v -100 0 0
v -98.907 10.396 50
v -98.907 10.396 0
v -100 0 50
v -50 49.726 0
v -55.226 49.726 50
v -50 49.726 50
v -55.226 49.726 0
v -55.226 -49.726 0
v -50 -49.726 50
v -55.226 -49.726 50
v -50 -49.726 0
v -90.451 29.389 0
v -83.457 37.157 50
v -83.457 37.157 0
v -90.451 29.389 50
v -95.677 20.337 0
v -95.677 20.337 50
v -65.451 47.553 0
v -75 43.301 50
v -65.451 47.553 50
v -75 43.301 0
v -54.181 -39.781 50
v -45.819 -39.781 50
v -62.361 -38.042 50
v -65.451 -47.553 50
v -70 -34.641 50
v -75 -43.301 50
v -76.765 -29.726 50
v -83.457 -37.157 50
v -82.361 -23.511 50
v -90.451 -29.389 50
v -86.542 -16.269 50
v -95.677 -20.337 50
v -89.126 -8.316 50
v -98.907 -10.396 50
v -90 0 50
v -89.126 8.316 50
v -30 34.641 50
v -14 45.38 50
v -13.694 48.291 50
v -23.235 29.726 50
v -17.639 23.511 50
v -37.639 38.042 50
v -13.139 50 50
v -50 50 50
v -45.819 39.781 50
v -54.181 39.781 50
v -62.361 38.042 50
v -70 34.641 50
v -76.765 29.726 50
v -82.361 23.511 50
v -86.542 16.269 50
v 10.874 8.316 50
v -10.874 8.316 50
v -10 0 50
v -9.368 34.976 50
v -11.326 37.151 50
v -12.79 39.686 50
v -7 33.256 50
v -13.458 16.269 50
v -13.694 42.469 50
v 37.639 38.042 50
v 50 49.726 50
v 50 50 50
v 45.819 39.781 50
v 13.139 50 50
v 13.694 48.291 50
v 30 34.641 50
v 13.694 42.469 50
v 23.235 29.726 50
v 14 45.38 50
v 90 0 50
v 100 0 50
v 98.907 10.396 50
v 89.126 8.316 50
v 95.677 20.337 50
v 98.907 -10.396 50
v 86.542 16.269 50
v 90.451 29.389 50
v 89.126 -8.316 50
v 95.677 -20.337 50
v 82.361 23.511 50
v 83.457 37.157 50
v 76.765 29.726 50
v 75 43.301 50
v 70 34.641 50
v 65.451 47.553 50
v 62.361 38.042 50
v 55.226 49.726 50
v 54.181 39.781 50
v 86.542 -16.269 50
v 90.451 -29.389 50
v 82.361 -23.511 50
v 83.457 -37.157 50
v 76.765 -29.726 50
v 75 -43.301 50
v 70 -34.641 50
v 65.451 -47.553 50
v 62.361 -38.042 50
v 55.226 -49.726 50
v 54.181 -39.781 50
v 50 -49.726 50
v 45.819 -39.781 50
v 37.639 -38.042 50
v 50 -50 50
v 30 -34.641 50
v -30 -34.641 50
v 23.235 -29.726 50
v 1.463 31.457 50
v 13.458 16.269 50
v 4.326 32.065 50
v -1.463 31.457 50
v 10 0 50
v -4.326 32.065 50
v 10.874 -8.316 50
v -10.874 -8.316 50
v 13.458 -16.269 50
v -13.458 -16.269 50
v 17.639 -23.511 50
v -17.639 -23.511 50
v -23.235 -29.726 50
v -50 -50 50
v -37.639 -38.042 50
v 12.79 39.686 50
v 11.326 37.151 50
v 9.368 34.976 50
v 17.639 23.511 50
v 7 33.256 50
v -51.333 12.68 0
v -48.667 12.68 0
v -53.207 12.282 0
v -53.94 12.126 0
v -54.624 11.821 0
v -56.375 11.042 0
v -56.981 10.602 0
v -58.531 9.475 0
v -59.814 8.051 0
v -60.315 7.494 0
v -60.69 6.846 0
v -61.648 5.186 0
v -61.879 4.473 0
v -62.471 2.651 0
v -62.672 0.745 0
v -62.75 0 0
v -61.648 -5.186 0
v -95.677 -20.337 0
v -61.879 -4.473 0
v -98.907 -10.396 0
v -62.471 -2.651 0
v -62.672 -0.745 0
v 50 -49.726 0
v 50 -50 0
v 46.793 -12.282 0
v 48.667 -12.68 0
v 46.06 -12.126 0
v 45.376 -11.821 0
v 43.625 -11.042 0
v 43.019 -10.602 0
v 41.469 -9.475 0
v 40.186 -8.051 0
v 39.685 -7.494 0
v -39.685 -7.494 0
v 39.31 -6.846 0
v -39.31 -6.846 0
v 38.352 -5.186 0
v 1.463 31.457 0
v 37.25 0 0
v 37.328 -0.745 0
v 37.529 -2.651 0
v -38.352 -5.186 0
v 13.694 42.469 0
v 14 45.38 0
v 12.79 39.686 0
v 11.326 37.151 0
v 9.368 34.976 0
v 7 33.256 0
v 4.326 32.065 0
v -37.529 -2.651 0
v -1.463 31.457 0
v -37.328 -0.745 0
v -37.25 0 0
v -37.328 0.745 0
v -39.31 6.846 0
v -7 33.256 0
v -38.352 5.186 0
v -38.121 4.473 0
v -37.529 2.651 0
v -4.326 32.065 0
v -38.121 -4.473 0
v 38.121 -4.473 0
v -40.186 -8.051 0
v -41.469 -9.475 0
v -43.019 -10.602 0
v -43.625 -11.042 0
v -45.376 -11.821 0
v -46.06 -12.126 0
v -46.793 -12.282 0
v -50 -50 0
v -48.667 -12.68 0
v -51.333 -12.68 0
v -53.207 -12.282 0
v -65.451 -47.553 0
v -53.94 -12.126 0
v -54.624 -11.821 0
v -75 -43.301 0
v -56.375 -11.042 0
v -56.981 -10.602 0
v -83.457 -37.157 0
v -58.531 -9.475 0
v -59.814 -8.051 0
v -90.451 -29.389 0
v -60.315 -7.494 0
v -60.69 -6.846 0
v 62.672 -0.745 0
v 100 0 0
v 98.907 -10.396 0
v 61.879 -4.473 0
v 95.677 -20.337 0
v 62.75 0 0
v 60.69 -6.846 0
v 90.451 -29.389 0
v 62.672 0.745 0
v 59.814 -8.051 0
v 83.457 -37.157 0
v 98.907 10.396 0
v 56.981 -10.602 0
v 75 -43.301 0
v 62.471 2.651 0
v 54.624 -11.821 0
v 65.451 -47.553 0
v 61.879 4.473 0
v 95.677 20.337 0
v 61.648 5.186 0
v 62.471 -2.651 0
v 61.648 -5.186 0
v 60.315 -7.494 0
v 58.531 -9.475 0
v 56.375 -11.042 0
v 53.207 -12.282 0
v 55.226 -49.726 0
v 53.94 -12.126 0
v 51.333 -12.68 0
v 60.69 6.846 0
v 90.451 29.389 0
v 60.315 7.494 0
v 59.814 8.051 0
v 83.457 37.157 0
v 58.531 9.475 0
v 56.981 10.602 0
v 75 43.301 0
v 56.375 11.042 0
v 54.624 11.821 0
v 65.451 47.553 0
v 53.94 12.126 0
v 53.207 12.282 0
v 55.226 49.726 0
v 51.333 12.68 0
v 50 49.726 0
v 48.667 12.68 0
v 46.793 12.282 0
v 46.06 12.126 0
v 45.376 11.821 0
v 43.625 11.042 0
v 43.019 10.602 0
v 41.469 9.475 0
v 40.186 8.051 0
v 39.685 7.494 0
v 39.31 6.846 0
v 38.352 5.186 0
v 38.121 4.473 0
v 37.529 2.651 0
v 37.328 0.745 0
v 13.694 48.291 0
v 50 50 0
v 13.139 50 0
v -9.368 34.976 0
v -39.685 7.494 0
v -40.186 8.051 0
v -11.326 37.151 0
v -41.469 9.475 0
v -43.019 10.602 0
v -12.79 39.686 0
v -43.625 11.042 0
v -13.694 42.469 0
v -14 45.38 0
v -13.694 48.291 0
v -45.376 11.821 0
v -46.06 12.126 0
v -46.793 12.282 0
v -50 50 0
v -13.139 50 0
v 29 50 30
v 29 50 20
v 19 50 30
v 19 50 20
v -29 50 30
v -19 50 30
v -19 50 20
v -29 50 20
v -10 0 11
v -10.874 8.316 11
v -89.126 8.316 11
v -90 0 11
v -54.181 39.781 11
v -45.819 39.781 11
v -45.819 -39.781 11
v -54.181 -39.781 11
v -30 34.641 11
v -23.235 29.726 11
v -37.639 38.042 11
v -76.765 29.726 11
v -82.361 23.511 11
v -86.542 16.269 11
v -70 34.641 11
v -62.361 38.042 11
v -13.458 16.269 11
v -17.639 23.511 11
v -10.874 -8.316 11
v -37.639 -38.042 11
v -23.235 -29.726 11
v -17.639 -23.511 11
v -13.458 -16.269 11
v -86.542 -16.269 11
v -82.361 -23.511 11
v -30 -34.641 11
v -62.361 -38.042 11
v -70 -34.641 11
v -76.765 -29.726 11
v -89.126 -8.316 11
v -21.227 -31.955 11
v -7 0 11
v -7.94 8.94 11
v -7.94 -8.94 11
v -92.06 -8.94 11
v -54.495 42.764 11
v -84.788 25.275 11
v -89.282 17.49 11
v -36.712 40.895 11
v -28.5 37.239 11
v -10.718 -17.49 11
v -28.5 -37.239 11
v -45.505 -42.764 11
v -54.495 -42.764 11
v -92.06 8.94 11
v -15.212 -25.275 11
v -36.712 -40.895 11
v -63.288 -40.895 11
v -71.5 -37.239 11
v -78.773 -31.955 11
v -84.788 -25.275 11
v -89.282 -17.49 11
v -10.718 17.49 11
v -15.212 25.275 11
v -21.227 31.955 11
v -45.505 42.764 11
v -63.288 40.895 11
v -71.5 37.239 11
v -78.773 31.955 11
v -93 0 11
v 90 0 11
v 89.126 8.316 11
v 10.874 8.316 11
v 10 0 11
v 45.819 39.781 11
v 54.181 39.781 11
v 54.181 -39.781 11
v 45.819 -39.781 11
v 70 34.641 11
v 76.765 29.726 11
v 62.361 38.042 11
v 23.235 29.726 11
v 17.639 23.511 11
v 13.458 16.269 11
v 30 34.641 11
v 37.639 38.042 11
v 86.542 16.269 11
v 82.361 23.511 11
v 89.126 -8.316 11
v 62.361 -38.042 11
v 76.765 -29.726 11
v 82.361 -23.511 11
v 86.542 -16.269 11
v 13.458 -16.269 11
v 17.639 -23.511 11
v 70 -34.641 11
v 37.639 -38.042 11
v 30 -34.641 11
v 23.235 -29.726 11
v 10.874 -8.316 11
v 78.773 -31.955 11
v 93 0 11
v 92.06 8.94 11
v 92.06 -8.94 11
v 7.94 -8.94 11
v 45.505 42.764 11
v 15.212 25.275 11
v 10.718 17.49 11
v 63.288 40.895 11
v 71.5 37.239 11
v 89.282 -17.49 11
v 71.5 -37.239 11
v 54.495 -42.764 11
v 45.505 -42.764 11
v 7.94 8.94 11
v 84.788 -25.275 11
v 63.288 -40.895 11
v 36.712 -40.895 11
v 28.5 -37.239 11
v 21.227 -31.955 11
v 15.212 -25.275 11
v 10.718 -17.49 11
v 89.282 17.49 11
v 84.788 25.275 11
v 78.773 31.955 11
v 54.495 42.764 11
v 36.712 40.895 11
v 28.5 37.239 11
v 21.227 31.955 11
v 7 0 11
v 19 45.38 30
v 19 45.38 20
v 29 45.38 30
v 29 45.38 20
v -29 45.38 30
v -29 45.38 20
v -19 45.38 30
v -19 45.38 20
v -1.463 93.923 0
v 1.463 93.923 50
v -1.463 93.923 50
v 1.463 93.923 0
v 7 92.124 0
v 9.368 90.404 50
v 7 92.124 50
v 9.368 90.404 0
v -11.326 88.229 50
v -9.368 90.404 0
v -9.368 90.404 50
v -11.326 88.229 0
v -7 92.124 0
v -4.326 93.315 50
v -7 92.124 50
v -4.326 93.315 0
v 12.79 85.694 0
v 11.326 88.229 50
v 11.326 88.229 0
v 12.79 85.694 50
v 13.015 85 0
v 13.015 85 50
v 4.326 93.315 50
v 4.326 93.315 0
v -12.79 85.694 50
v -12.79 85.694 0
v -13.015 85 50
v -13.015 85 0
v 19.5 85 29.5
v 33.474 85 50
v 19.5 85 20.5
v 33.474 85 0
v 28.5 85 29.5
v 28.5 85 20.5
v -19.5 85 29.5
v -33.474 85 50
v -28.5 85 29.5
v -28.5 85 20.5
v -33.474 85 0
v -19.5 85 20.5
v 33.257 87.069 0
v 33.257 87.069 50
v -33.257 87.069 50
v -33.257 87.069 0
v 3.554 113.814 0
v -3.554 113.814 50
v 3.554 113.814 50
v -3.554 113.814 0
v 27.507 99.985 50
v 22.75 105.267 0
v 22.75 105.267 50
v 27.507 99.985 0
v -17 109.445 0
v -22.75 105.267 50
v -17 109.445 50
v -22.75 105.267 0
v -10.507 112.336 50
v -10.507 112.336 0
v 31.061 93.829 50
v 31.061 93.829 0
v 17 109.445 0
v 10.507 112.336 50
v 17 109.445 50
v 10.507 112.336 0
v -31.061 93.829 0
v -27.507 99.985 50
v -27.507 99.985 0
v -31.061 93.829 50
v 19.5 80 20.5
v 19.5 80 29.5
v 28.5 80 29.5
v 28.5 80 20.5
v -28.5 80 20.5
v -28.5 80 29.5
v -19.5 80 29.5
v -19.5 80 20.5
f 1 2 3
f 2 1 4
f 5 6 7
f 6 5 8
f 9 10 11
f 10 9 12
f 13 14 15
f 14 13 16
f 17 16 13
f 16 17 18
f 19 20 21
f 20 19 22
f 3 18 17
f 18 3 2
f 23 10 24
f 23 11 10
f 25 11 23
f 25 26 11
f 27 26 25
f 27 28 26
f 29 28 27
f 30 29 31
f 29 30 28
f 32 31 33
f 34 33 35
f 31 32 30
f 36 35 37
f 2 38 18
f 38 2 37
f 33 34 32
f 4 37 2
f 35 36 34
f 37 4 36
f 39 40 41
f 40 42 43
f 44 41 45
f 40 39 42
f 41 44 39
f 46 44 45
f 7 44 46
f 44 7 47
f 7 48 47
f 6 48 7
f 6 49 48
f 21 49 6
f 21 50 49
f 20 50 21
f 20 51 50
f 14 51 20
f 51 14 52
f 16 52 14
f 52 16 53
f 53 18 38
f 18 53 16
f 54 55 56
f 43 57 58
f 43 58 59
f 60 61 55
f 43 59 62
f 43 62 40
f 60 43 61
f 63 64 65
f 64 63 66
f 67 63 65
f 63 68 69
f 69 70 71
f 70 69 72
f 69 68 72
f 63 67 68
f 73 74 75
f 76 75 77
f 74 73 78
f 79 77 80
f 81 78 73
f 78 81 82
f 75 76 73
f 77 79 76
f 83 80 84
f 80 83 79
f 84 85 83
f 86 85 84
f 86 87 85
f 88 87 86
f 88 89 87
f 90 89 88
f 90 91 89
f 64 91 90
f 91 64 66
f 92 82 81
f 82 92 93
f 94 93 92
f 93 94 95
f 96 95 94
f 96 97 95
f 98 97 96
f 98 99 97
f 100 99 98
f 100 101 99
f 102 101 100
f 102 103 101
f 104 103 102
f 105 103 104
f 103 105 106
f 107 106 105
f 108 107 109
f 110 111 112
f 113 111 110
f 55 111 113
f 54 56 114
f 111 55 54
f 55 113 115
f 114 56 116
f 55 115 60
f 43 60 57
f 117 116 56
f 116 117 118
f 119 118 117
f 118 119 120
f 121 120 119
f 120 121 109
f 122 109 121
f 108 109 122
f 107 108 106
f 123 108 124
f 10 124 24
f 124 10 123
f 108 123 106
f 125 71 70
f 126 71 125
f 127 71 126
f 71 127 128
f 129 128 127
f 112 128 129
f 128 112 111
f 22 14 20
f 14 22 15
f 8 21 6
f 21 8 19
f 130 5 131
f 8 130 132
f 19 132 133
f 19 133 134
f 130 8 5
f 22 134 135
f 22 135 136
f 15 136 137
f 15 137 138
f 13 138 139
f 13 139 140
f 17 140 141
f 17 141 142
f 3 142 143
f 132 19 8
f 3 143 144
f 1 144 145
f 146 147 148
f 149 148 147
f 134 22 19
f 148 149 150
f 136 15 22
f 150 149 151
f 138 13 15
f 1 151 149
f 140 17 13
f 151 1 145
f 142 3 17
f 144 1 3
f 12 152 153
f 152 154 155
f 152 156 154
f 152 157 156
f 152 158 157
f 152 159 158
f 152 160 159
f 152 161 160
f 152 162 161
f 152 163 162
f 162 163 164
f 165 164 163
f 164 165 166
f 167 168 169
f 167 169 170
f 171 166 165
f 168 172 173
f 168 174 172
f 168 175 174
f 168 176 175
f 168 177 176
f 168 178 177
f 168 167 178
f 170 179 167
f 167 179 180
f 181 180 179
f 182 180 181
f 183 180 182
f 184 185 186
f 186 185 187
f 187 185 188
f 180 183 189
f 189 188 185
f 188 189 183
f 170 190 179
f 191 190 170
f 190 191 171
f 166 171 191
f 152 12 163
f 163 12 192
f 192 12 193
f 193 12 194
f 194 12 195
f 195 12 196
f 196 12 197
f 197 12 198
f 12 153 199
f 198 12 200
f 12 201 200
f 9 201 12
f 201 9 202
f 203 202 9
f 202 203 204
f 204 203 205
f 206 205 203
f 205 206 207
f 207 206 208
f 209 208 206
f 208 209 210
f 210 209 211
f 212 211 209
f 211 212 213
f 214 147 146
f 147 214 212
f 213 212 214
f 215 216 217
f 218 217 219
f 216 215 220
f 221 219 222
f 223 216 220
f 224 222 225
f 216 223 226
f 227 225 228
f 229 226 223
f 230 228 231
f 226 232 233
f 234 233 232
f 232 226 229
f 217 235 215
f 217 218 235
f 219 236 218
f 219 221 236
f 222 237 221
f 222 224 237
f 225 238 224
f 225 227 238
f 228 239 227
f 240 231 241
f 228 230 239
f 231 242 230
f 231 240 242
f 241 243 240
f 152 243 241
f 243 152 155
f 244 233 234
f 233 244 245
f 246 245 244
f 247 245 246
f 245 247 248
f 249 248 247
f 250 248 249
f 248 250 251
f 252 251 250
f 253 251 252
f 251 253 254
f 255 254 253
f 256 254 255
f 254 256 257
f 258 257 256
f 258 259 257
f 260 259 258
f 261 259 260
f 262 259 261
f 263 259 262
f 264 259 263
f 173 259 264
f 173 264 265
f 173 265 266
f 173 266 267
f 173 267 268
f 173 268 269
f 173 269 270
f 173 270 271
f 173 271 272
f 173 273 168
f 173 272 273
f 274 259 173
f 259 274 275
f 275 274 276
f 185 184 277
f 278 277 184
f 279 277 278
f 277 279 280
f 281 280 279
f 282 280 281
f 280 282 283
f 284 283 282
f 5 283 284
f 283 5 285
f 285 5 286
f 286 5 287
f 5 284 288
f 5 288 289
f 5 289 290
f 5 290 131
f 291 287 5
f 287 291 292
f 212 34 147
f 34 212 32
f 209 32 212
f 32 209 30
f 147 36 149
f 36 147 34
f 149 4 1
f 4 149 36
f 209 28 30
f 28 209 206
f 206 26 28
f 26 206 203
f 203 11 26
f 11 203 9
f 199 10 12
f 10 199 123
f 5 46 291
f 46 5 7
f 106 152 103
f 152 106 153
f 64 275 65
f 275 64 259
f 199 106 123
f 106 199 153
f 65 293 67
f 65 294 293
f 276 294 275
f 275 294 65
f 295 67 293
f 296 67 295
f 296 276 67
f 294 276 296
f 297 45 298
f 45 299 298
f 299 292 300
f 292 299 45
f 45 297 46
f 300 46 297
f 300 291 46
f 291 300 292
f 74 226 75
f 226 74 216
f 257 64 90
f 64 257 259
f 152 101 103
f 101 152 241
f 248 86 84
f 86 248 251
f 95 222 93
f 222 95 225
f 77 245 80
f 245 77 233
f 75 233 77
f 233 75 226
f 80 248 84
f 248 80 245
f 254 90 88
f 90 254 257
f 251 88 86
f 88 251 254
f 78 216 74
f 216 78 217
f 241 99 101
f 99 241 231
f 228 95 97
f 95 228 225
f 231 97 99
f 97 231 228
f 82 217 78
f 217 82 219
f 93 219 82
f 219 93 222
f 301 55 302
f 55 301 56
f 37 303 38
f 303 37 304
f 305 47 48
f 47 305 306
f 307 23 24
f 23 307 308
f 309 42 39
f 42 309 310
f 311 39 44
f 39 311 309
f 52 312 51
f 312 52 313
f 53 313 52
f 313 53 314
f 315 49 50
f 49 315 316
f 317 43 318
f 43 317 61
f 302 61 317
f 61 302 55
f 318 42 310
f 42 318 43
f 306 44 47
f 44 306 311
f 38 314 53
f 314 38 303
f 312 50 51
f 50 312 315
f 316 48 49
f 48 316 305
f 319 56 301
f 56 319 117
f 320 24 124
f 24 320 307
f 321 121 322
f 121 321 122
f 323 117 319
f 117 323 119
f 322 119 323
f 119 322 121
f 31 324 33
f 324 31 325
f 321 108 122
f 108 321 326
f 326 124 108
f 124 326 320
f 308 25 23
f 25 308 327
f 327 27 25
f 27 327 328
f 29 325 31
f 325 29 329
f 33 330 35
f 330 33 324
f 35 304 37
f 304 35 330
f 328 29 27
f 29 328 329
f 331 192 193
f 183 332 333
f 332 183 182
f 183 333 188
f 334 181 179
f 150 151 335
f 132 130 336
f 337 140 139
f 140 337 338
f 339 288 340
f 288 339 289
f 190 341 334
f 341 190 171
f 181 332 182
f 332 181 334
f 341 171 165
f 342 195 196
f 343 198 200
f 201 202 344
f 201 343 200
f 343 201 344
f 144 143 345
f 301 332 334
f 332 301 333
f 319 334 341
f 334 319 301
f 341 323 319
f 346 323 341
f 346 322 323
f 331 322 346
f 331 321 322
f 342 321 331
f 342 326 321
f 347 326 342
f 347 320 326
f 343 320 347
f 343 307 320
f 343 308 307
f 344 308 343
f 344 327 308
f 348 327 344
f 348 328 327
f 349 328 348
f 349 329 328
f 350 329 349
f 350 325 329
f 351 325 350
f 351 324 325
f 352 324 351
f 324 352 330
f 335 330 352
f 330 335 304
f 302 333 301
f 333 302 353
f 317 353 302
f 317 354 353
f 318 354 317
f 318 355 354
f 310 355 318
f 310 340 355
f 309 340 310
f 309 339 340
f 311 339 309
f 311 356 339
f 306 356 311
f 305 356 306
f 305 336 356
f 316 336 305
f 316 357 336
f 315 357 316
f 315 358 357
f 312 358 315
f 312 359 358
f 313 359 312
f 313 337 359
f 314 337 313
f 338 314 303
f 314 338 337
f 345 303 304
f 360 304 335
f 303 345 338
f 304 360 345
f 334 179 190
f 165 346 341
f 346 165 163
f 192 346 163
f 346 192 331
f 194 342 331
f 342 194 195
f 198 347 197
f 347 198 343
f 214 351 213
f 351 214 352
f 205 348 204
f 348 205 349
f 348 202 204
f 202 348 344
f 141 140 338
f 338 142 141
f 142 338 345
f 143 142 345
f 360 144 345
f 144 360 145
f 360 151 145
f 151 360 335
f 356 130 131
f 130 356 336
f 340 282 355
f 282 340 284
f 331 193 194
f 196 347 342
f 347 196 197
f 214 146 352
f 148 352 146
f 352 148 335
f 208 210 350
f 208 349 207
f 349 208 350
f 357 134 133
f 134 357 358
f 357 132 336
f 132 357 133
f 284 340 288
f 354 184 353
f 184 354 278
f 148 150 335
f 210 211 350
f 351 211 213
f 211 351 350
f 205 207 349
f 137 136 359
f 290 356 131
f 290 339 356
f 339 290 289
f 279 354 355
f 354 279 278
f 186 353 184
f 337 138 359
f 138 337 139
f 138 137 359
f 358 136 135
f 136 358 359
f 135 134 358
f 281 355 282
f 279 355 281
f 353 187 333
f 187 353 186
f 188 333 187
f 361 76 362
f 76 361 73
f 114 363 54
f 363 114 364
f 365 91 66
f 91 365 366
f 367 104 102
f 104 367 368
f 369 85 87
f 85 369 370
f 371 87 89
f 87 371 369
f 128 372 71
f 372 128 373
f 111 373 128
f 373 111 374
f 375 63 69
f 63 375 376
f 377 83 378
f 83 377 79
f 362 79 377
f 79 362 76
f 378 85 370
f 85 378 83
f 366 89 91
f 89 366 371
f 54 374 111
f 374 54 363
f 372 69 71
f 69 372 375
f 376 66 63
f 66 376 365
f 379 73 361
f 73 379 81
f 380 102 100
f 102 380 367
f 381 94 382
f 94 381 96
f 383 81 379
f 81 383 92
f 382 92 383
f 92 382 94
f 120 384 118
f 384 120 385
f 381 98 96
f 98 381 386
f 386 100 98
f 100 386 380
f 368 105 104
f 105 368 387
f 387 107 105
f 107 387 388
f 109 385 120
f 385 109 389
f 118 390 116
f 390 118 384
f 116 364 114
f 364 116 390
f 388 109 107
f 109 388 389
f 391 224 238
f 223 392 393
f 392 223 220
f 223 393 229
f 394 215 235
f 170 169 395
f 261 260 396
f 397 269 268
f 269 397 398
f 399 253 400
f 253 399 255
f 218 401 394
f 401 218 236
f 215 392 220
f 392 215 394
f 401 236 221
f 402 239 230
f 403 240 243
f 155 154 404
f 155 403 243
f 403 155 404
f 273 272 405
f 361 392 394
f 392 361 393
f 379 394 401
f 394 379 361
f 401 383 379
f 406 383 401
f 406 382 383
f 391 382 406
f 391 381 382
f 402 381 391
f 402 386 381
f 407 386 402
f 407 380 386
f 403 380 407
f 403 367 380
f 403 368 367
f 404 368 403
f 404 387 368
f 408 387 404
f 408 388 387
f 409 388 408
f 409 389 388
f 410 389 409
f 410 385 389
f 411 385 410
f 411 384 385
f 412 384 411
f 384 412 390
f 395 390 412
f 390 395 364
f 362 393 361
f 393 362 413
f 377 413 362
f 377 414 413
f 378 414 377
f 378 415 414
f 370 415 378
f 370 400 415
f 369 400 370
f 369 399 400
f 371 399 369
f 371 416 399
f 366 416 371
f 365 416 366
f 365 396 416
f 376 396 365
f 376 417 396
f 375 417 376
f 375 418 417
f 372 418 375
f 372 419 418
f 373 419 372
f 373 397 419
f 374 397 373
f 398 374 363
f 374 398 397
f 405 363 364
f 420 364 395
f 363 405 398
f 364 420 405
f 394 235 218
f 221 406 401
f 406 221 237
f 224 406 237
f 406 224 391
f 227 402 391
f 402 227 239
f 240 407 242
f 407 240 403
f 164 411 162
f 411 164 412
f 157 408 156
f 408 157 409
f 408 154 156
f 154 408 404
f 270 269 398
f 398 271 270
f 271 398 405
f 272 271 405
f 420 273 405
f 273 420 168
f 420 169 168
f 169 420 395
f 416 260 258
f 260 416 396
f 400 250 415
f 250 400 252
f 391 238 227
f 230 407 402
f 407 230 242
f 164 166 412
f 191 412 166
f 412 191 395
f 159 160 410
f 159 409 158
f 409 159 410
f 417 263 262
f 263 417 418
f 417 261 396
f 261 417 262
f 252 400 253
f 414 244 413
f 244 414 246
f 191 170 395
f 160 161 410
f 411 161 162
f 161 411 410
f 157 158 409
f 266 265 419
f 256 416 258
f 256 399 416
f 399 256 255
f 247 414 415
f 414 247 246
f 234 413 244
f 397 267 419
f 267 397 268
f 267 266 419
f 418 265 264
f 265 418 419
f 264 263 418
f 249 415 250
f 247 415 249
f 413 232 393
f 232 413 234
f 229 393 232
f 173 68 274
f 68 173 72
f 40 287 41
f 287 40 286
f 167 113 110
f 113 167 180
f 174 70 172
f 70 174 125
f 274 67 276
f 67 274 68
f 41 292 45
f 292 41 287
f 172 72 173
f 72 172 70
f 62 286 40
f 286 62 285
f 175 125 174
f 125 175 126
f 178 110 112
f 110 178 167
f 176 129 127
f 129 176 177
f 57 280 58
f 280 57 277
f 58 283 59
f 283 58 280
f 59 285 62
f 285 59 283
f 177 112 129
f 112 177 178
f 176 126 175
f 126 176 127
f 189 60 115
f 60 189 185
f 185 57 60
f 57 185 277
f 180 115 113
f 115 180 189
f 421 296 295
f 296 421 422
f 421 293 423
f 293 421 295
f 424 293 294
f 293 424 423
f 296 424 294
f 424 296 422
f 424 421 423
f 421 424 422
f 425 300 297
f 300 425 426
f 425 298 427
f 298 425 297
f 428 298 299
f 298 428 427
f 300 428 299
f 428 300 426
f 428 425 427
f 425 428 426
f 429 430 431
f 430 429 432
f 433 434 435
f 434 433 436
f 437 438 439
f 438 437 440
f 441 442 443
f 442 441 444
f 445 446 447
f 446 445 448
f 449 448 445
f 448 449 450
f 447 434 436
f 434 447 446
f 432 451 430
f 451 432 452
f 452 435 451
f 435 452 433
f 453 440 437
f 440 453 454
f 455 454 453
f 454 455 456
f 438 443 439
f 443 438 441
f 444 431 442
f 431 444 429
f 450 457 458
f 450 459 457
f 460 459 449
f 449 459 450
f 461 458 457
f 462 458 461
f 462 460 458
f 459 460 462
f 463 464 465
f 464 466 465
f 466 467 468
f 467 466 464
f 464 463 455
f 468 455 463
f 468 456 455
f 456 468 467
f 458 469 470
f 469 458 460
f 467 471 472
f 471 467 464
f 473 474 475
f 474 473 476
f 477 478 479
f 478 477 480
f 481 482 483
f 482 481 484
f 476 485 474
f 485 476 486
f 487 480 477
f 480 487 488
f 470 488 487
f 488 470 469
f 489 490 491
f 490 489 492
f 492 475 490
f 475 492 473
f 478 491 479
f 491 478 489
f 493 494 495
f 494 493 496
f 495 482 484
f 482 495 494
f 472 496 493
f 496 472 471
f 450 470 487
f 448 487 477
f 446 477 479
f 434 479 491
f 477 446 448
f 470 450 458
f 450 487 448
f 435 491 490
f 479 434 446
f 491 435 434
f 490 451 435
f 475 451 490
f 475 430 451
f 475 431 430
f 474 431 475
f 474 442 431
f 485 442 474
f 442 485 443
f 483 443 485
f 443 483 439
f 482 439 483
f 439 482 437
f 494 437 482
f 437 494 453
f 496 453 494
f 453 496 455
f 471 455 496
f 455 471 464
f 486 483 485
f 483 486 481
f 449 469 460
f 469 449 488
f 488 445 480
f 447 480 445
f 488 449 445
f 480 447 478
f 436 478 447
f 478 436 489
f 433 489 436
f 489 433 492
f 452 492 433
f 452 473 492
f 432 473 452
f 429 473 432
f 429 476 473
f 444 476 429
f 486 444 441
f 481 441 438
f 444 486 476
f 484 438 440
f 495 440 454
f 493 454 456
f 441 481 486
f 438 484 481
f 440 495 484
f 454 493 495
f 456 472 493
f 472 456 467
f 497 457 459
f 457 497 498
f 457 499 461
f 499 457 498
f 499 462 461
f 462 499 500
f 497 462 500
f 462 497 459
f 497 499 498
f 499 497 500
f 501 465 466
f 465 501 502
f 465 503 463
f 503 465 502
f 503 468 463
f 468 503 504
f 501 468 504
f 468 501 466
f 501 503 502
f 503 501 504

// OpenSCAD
// soap bottle holder parametters
bottle_diameter = 80;
holder_height = 50;
shower_tube_diameter = 28;
bottle_clearance = 10;
mating_hole_size = 10;
drip_hole_radius = 10;


// intermediate values 
bottle_radius = bottle_diameter / 2;
shower_tube_radius = shower_tube_diameter / 2;


difference() {
    // base
    union() {
        translate([ 0 - (bottle_radius + bottle_clearance )  , 0, 0]) {
            cylinder(holder_height, r = (bottle_radius + bottle_clearance));
        };
        translate([0 - (bottle_radius + bottle_clearance ), 0 - (bottle_radius + bottle_clearance), 0]) {
            cube([bottle_diameter + 2 * bottle_clearance, (bottle_diameter + 2 * bottle_clearance), holder_height]);
        };
        translate([ (bottle_radius + bottle_clearance )  , 0, 0]) {
            cylinder(holder_height, r = (bottle_radius + bottle_clearance));
        };
    }
    // bottle holders
    translate([0 - (bottle_radius + bottle_clearance ), 0, bottle_clearance]) {
        cylinder(holder_height, r = bottle_radius);
        translate([0, 0, 0 - bottle_clearance - 1]) {
            cylinder(bottle_clearance + 2, r1 = drip_hole_radius, r2 = bottle_radius + 3);
        };
    }
    translate([bottle_radius + bottle_clearance , 0, bottle_clearance]) {
        cylinder(holder_height, r = bottle_radius);
        translate([0, 0, 0 - bottle_clearance - 1]) {
            cylinder(bottle_clearance + 2, r1 = drip_hole_radius, r2 = bottle_radius + 3);
        };
    }
    // bottle leak through
    
    // shower tube hole 
    translate([0, bottle_radius + bottle_clearance - shower_tube_radius * 0.33 , 0 - ( holder_height / 2)]) {
        cylinder(holder_height * 2, r = shower_tube_radius);
    };
    
    // shower tube mating holes 
    translate([ shower_tube_radius + mating_hole_size / 2, bottle_radius + bottle_clearance - shower_tube_radius * 0.33, holder_height / 2 - mating_hole_size / 2]) {
        cube(mating_hole_size);
    }
    translate([ 0 - ( shower_tube_radius + mating_hole_size * 1.5), bottle_radius + bottle_clearance - shower_tube_radius * 0.33, holder_height / 2 - mating_hole_size / 2]) {
        cube(mating_hole_size);
    }
}

// clamp cover
translate([0, bottle_diameter, 0]) {
    union() {
        difference() {
            // shower tube hole 
            cylinder(holder_height, r = shower_tube_radius + bottle_clearance * 2);
        
            translate([0,0, 0 - ( holder_height / 2)]) {
                cylinder(holder_height * 2, r = shower_tube_radius);
                translate([0 - ((shower_tube_radius) * 2) - bottle_clearance, 0-(shower_tube_diameter + bottle_clearance * 1.5), 0]) {
                    cube([(shower_tube_diameter + bottle_clearance) * 2, shower_tube_diameter + bottle_clearance * 2, holder_height * 2]);
                };
            };   
        };
        // locking pegs
        translate([shower_tube_radius + (mating_hole_size + 1) / 2, 0, holder_height / 2 - (mating_hole_size - 1) / 2]) {
            cube(mating_hole_size - 1);
        };
        translate([0 - (shower_tube_radius + (mating_hole_size) * 1.5) + 0.5, 0, holder_height / 2 - (mating_hole_size - 1) / 2]) {
            cube(mating_hole_size - 1);
        };
    }
};

translate([0, bottle_diameter * 2, 0]) {
    
};
